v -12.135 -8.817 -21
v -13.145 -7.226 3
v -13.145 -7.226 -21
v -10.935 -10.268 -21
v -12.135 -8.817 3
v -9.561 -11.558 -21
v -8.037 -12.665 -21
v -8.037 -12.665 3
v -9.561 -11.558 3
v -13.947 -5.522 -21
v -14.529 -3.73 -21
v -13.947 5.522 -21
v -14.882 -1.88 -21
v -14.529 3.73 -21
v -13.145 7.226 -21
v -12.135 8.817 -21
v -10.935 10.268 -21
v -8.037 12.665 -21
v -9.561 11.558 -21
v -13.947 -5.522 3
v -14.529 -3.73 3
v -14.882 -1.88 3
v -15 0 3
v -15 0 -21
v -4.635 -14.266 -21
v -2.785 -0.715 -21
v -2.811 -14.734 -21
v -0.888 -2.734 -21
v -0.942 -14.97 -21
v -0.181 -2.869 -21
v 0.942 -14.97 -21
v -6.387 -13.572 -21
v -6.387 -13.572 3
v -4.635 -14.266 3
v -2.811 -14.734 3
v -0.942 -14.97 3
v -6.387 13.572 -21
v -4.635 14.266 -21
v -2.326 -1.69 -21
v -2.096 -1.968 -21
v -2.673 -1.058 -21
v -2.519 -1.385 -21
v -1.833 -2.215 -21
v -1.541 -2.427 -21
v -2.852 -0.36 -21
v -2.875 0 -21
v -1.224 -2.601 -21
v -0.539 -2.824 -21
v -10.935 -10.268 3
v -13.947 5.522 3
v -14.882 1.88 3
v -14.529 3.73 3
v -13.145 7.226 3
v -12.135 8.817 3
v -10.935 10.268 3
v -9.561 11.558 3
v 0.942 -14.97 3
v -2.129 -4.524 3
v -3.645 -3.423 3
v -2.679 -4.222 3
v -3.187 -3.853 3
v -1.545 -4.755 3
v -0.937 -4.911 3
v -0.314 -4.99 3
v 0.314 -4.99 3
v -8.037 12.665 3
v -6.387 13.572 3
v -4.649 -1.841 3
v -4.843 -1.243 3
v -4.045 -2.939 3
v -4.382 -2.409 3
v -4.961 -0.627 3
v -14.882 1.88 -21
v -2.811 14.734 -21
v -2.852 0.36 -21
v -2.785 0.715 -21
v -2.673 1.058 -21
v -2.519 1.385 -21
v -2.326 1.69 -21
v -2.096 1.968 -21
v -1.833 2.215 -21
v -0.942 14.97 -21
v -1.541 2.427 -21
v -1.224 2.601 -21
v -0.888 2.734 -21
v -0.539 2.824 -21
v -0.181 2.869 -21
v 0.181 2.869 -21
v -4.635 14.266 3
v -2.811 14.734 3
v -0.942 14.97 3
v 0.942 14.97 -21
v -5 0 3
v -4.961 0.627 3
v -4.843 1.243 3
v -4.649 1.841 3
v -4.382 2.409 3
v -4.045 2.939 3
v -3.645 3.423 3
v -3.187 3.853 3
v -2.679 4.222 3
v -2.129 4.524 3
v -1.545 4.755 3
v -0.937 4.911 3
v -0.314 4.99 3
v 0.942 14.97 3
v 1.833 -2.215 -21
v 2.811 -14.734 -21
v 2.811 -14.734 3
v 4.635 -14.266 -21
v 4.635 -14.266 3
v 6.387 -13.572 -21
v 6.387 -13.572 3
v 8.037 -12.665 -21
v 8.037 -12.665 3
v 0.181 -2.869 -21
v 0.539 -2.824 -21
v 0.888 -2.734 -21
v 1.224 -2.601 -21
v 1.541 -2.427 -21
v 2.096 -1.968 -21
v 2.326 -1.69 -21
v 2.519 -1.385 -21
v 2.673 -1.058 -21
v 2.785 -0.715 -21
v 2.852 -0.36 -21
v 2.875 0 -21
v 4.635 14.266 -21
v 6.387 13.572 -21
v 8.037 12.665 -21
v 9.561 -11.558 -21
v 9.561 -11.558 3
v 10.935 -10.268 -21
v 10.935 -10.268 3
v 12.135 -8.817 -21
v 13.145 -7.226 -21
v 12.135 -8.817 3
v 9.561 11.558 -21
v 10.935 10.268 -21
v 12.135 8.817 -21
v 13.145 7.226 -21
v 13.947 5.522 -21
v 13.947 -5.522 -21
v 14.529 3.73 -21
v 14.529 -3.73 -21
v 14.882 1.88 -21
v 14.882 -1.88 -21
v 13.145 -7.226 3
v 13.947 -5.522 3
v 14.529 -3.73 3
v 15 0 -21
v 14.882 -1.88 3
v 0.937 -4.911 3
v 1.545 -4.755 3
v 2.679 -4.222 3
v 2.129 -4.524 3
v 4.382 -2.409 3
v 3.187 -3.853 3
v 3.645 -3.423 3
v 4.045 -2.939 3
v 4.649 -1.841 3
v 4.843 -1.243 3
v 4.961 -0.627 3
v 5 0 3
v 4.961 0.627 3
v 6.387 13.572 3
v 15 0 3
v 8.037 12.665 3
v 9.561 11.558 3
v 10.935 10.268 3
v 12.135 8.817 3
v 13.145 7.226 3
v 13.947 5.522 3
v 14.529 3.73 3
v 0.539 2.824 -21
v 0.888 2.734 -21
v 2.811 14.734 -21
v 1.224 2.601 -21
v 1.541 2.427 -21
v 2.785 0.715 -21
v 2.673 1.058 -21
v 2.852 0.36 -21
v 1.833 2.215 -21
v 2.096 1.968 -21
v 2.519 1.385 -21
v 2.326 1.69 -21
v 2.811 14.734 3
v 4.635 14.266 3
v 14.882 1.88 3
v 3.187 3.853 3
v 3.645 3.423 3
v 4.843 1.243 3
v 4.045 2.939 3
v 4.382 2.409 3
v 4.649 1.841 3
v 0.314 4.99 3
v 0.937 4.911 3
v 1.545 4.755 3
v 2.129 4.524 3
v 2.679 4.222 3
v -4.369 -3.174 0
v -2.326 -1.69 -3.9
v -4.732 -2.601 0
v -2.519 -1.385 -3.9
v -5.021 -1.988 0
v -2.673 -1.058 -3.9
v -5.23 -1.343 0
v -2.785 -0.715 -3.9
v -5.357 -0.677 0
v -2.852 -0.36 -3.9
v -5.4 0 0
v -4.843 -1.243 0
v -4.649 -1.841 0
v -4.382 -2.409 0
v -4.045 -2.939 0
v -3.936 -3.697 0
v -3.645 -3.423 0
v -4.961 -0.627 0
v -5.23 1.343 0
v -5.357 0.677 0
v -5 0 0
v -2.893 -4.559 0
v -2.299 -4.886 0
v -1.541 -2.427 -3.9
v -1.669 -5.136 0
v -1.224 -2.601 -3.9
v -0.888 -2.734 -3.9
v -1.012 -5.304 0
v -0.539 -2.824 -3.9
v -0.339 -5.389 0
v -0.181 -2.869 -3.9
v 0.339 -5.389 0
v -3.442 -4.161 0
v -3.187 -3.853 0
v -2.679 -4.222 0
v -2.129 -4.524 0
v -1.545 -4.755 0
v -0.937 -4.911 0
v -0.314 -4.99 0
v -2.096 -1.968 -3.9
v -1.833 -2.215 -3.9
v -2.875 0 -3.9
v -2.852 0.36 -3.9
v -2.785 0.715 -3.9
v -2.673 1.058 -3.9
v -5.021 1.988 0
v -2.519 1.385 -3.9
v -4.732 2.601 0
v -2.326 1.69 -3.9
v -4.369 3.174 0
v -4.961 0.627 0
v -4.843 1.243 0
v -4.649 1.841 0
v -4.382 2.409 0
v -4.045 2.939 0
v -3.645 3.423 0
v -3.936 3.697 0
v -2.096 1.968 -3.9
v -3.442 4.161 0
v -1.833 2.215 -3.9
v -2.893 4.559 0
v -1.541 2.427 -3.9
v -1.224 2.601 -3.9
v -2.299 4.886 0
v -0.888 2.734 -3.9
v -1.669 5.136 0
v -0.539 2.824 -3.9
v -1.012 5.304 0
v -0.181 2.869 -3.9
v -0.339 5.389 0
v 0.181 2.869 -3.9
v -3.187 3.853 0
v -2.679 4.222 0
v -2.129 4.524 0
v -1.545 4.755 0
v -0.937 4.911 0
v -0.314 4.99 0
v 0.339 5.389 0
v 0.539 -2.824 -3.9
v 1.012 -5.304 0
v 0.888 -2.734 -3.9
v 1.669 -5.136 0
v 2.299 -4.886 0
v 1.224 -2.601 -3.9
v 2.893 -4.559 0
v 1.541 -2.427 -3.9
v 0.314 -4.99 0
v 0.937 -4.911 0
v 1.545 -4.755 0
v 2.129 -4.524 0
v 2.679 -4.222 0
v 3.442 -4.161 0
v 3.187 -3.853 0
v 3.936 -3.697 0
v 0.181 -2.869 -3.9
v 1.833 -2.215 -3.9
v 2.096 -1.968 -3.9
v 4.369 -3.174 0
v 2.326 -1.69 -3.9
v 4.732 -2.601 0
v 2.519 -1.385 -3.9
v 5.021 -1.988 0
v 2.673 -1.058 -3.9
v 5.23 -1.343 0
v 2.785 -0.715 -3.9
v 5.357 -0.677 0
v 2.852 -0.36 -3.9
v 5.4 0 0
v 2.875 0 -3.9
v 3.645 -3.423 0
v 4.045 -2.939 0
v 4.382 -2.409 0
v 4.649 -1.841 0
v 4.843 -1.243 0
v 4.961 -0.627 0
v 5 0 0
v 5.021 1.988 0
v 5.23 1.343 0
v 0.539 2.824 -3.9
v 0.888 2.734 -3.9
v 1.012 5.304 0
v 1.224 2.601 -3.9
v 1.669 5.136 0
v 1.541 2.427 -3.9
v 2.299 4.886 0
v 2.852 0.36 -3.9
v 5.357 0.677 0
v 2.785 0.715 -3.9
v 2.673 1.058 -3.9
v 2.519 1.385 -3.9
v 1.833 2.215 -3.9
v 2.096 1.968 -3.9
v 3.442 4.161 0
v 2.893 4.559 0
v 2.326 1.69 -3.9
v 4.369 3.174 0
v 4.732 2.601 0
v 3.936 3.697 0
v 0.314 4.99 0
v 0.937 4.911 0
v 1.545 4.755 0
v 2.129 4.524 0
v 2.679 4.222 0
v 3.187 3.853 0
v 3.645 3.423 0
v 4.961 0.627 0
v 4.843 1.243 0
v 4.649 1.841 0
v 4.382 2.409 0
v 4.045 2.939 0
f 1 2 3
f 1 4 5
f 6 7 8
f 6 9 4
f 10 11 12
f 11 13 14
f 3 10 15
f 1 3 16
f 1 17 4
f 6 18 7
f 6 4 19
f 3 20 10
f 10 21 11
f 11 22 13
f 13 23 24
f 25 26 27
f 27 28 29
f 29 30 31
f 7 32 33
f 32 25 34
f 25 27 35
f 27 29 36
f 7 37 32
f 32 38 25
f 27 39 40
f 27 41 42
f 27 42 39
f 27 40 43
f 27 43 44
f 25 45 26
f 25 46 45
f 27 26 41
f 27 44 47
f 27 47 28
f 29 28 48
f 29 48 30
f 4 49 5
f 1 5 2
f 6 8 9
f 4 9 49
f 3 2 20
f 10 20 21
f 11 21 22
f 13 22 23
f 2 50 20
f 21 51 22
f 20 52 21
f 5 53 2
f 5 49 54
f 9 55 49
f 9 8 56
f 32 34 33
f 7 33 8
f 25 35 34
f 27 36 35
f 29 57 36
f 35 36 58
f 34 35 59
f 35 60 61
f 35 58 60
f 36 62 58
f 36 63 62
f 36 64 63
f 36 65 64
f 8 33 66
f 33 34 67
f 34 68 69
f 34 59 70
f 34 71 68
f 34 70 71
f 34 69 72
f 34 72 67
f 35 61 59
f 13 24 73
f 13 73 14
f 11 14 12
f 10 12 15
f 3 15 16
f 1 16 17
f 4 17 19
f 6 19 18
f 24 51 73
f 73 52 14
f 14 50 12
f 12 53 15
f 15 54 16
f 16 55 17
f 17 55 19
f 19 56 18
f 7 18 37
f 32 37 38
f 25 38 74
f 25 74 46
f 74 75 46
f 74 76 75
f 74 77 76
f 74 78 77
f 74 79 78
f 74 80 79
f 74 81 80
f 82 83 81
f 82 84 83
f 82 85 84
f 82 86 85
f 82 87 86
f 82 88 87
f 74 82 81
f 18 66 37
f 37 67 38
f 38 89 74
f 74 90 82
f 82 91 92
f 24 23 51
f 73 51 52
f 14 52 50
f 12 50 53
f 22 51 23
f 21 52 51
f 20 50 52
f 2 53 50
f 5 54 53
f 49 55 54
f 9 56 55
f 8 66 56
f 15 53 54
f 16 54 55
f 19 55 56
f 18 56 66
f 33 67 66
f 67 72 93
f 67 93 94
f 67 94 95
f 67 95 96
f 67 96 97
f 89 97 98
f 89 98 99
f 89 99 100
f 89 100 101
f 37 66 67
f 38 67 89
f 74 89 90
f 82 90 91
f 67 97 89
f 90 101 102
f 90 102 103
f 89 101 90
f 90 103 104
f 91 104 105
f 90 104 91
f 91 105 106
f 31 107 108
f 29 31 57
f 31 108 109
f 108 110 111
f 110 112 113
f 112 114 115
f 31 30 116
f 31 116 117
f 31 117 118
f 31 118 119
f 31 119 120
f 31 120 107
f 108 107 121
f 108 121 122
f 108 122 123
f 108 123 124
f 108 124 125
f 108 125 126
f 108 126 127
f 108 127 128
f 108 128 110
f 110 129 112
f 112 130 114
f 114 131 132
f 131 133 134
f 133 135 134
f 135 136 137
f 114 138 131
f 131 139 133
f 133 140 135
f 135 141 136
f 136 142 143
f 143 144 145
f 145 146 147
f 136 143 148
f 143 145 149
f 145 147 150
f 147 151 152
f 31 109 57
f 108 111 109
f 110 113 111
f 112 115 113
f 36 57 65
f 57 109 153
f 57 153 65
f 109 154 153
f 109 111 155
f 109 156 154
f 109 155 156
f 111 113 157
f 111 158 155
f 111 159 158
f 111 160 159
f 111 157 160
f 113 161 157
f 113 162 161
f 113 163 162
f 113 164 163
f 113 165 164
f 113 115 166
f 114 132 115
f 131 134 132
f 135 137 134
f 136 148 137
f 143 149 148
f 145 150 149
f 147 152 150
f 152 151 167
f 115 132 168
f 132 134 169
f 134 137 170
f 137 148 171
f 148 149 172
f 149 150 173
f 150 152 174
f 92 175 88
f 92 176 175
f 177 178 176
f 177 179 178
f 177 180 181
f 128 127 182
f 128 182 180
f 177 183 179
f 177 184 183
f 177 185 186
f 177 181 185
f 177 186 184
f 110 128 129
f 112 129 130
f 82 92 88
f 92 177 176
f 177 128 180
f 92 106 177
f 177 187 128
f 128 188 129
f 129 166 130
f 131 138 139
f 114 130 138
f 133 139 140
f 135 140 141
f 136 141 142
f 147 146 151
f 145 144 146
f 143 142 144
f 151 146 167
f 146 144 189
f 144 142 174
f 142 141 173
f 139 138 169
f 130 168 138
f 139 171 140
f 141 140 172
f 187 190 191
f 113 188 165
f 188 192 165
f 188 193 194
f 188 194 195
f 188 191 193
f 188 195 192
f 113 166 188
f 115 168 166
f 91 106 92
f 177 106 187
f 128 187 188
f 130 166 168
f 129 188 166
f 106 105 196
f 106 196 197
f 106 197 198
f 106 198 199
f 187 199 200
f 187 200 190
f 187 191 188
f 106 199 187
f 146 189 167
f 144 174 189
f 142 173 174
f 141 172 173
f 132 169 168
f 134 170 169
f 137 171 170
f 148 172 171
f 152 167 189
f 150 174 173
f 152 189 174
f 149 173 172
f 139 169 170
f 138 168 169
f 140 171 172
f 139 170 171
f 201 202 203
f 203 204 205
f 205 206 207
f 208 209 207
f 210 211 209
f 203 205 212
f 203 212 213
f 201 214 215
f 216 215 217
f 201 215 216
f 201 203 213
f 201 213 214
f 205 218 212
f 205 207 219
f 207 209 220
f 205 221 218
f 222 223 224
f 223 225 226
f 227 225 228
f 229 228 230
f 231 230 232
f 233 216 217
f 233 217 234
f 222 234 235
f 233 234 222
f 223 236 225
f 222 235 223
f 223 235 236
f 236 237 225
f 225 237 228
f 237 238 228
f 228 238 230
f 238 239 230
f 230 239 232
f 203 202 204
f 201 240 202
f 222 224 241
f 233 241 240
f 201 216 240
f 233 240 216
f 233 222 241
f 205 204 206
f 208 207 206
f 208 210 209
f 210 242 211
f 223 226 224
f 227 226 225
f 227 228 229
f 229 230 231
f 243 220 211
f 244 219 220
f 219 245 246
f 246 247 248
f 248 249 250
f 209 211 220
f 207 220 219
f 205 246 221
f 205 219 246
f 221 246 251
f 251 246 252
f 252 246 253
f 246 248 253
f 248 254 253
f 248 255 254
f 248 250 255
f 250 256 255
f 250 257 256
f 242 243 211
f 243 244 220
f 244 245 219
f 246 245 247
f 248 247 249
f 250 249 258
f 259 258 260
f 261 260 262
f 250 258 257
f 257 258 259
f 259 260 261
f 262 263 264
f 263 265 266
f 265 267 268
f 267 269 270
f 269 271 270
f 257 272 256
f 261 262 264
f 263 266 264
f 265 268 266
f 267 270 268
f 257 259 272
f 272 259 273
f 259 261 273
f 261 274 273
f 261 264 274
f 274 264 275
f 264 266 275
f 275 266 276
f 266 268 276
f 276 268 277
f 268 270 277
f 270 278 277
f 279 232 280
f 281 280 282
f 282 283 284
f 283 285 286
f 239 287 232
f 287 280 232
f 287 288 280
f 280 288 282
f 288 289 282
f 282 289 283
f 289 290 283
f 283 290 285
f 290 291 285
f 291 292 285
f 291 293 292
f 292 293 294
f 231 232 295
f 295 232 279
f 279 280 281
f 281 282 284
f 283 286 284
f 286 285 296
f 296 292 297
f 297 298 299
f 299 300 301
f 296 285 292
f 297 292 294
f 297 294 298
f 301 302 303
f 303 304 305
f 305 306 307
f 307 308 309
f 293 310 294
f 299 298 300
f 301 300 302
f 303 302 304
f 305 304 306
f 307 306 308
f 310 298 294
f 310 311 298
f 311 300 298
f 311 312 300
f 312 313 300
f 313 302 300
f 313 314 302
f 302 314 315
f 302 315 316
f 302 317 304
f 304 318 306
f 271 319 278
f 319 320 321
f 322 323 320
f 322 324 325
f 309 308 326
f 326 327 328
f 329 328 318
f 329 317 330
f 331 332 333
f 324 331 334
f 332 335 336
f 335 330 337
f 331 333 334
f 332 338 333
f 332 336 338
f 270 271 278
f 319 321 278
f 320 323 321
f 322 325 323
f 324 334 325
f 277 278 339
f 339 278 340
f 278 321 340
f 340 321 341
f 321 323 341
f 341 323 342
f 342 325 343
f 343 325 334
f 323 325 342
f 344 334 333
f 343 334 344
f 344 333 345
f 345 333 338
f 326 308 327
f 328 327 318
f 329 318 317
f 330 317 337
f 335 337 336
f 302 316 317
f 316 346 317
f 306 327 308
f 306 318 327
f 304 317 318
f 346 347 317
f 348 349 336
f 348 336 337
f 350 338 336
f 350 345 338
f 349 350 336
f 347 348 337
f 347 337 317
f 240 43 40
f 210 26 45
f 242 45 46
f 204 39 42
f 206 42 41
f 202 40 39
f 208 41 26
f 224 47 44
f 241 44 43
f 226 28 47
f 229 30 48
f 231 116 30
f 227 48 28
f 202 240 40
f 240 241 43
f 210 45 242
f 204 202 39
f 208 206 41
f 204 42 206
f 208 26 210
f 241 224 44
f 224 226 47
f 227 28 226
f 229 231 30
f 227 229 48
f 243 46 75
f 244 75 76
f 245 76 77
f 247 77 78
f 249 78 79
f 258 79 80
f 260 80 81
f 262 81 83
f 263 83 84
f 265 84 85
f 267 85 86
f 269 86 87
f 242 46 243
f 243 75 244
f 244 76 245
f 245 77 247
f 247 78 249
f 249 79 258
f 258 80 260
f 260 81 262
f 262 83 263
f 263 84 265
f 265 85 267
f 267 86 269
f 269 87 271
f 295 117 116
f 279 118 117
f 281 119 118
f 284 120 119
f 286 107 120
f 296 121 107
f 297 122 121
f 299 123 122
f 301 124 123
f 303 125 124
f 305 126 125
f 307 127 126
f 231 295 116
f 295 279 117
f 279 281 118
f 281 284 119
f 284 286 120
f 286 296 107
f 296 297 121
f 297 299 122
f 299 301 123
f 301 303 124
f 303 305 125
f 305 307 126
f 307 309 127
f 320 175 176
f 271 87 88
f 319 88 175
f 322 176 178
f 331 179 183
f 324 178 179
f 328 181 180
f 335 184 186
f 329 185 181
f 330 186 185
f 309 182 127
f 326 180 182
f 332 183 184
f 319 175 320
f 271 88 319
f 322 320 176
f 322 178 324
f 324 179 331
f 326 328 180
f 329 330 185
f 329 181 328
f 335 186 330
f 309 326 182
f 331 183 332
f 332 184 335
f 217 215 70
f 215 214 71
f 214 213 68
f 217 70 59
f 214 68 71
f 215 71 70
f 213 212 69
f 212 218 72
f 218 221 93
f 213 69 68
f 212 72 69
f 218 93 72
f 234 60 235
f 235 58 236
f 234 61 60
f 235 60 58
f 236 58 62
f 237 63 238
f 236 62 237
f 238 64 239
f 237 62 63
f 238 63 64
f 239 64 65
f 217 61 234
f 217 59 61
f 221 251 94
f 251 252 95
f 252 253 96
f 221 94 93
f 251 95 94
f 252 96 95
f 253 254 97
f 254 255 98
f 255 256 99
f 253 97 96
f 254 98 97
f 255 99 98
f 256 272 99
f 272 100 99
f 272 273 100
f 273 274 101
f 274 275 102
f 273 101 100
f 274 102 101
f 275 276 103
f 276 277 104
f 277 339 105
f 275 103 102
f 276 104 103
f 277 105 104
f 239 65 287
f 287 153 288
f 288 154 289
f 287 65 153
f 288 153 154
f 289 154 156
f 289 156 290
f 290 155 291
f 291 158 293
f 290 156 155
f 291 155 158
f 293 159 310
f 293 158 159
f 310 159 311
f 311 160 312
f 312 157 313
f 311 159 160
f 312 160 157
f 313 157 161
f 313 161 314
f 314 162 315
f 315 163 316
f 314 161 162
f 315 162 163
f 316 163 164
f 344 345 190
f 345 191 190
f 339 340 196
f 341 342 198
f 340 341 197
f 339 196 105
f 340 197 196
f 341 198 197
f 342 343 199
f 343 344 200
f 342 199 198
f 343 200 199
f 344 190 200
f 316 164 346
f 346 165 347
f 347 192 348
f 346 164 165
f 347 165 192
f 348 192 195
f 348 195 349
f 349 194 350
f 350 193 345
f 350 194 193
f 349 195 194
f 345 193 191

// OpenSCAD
$fn = 50;

difference() {
	union() {
		translate(v = [0, 0, -21.0]) {
			cylinder(h = 24, r = 15.0);
		}
		#translate(v = [0, 0, -24.0]) {
			cylinder(h = 24, r = 2.875);
		}
	}
	union() {
		translate(v = [0, 0, 0]) {
			rotate(a = [0, 0, 0]) {
				difference() {
					union() {
						translate(v = [0, 0, -24.0]) {
							cylinder(h = 24, r = 2.6);
						}
						translate(v = [0, 0, -3.9]) {
							cylinder(h = 3.9, r1 = 2.875, r2 = 5.4);
						}
						translate(v = [0, 0, -24.0]) {
							cylinder(h = 24, r = 2.875);
						}
						translate(v = [0, 0, -24.0]) {
							cylinder(h = 24, r = 2.6);
						}
					}
					union();
				}
			}
		}
		#cylinder(h = 3, r = 5.0);
	}
}
